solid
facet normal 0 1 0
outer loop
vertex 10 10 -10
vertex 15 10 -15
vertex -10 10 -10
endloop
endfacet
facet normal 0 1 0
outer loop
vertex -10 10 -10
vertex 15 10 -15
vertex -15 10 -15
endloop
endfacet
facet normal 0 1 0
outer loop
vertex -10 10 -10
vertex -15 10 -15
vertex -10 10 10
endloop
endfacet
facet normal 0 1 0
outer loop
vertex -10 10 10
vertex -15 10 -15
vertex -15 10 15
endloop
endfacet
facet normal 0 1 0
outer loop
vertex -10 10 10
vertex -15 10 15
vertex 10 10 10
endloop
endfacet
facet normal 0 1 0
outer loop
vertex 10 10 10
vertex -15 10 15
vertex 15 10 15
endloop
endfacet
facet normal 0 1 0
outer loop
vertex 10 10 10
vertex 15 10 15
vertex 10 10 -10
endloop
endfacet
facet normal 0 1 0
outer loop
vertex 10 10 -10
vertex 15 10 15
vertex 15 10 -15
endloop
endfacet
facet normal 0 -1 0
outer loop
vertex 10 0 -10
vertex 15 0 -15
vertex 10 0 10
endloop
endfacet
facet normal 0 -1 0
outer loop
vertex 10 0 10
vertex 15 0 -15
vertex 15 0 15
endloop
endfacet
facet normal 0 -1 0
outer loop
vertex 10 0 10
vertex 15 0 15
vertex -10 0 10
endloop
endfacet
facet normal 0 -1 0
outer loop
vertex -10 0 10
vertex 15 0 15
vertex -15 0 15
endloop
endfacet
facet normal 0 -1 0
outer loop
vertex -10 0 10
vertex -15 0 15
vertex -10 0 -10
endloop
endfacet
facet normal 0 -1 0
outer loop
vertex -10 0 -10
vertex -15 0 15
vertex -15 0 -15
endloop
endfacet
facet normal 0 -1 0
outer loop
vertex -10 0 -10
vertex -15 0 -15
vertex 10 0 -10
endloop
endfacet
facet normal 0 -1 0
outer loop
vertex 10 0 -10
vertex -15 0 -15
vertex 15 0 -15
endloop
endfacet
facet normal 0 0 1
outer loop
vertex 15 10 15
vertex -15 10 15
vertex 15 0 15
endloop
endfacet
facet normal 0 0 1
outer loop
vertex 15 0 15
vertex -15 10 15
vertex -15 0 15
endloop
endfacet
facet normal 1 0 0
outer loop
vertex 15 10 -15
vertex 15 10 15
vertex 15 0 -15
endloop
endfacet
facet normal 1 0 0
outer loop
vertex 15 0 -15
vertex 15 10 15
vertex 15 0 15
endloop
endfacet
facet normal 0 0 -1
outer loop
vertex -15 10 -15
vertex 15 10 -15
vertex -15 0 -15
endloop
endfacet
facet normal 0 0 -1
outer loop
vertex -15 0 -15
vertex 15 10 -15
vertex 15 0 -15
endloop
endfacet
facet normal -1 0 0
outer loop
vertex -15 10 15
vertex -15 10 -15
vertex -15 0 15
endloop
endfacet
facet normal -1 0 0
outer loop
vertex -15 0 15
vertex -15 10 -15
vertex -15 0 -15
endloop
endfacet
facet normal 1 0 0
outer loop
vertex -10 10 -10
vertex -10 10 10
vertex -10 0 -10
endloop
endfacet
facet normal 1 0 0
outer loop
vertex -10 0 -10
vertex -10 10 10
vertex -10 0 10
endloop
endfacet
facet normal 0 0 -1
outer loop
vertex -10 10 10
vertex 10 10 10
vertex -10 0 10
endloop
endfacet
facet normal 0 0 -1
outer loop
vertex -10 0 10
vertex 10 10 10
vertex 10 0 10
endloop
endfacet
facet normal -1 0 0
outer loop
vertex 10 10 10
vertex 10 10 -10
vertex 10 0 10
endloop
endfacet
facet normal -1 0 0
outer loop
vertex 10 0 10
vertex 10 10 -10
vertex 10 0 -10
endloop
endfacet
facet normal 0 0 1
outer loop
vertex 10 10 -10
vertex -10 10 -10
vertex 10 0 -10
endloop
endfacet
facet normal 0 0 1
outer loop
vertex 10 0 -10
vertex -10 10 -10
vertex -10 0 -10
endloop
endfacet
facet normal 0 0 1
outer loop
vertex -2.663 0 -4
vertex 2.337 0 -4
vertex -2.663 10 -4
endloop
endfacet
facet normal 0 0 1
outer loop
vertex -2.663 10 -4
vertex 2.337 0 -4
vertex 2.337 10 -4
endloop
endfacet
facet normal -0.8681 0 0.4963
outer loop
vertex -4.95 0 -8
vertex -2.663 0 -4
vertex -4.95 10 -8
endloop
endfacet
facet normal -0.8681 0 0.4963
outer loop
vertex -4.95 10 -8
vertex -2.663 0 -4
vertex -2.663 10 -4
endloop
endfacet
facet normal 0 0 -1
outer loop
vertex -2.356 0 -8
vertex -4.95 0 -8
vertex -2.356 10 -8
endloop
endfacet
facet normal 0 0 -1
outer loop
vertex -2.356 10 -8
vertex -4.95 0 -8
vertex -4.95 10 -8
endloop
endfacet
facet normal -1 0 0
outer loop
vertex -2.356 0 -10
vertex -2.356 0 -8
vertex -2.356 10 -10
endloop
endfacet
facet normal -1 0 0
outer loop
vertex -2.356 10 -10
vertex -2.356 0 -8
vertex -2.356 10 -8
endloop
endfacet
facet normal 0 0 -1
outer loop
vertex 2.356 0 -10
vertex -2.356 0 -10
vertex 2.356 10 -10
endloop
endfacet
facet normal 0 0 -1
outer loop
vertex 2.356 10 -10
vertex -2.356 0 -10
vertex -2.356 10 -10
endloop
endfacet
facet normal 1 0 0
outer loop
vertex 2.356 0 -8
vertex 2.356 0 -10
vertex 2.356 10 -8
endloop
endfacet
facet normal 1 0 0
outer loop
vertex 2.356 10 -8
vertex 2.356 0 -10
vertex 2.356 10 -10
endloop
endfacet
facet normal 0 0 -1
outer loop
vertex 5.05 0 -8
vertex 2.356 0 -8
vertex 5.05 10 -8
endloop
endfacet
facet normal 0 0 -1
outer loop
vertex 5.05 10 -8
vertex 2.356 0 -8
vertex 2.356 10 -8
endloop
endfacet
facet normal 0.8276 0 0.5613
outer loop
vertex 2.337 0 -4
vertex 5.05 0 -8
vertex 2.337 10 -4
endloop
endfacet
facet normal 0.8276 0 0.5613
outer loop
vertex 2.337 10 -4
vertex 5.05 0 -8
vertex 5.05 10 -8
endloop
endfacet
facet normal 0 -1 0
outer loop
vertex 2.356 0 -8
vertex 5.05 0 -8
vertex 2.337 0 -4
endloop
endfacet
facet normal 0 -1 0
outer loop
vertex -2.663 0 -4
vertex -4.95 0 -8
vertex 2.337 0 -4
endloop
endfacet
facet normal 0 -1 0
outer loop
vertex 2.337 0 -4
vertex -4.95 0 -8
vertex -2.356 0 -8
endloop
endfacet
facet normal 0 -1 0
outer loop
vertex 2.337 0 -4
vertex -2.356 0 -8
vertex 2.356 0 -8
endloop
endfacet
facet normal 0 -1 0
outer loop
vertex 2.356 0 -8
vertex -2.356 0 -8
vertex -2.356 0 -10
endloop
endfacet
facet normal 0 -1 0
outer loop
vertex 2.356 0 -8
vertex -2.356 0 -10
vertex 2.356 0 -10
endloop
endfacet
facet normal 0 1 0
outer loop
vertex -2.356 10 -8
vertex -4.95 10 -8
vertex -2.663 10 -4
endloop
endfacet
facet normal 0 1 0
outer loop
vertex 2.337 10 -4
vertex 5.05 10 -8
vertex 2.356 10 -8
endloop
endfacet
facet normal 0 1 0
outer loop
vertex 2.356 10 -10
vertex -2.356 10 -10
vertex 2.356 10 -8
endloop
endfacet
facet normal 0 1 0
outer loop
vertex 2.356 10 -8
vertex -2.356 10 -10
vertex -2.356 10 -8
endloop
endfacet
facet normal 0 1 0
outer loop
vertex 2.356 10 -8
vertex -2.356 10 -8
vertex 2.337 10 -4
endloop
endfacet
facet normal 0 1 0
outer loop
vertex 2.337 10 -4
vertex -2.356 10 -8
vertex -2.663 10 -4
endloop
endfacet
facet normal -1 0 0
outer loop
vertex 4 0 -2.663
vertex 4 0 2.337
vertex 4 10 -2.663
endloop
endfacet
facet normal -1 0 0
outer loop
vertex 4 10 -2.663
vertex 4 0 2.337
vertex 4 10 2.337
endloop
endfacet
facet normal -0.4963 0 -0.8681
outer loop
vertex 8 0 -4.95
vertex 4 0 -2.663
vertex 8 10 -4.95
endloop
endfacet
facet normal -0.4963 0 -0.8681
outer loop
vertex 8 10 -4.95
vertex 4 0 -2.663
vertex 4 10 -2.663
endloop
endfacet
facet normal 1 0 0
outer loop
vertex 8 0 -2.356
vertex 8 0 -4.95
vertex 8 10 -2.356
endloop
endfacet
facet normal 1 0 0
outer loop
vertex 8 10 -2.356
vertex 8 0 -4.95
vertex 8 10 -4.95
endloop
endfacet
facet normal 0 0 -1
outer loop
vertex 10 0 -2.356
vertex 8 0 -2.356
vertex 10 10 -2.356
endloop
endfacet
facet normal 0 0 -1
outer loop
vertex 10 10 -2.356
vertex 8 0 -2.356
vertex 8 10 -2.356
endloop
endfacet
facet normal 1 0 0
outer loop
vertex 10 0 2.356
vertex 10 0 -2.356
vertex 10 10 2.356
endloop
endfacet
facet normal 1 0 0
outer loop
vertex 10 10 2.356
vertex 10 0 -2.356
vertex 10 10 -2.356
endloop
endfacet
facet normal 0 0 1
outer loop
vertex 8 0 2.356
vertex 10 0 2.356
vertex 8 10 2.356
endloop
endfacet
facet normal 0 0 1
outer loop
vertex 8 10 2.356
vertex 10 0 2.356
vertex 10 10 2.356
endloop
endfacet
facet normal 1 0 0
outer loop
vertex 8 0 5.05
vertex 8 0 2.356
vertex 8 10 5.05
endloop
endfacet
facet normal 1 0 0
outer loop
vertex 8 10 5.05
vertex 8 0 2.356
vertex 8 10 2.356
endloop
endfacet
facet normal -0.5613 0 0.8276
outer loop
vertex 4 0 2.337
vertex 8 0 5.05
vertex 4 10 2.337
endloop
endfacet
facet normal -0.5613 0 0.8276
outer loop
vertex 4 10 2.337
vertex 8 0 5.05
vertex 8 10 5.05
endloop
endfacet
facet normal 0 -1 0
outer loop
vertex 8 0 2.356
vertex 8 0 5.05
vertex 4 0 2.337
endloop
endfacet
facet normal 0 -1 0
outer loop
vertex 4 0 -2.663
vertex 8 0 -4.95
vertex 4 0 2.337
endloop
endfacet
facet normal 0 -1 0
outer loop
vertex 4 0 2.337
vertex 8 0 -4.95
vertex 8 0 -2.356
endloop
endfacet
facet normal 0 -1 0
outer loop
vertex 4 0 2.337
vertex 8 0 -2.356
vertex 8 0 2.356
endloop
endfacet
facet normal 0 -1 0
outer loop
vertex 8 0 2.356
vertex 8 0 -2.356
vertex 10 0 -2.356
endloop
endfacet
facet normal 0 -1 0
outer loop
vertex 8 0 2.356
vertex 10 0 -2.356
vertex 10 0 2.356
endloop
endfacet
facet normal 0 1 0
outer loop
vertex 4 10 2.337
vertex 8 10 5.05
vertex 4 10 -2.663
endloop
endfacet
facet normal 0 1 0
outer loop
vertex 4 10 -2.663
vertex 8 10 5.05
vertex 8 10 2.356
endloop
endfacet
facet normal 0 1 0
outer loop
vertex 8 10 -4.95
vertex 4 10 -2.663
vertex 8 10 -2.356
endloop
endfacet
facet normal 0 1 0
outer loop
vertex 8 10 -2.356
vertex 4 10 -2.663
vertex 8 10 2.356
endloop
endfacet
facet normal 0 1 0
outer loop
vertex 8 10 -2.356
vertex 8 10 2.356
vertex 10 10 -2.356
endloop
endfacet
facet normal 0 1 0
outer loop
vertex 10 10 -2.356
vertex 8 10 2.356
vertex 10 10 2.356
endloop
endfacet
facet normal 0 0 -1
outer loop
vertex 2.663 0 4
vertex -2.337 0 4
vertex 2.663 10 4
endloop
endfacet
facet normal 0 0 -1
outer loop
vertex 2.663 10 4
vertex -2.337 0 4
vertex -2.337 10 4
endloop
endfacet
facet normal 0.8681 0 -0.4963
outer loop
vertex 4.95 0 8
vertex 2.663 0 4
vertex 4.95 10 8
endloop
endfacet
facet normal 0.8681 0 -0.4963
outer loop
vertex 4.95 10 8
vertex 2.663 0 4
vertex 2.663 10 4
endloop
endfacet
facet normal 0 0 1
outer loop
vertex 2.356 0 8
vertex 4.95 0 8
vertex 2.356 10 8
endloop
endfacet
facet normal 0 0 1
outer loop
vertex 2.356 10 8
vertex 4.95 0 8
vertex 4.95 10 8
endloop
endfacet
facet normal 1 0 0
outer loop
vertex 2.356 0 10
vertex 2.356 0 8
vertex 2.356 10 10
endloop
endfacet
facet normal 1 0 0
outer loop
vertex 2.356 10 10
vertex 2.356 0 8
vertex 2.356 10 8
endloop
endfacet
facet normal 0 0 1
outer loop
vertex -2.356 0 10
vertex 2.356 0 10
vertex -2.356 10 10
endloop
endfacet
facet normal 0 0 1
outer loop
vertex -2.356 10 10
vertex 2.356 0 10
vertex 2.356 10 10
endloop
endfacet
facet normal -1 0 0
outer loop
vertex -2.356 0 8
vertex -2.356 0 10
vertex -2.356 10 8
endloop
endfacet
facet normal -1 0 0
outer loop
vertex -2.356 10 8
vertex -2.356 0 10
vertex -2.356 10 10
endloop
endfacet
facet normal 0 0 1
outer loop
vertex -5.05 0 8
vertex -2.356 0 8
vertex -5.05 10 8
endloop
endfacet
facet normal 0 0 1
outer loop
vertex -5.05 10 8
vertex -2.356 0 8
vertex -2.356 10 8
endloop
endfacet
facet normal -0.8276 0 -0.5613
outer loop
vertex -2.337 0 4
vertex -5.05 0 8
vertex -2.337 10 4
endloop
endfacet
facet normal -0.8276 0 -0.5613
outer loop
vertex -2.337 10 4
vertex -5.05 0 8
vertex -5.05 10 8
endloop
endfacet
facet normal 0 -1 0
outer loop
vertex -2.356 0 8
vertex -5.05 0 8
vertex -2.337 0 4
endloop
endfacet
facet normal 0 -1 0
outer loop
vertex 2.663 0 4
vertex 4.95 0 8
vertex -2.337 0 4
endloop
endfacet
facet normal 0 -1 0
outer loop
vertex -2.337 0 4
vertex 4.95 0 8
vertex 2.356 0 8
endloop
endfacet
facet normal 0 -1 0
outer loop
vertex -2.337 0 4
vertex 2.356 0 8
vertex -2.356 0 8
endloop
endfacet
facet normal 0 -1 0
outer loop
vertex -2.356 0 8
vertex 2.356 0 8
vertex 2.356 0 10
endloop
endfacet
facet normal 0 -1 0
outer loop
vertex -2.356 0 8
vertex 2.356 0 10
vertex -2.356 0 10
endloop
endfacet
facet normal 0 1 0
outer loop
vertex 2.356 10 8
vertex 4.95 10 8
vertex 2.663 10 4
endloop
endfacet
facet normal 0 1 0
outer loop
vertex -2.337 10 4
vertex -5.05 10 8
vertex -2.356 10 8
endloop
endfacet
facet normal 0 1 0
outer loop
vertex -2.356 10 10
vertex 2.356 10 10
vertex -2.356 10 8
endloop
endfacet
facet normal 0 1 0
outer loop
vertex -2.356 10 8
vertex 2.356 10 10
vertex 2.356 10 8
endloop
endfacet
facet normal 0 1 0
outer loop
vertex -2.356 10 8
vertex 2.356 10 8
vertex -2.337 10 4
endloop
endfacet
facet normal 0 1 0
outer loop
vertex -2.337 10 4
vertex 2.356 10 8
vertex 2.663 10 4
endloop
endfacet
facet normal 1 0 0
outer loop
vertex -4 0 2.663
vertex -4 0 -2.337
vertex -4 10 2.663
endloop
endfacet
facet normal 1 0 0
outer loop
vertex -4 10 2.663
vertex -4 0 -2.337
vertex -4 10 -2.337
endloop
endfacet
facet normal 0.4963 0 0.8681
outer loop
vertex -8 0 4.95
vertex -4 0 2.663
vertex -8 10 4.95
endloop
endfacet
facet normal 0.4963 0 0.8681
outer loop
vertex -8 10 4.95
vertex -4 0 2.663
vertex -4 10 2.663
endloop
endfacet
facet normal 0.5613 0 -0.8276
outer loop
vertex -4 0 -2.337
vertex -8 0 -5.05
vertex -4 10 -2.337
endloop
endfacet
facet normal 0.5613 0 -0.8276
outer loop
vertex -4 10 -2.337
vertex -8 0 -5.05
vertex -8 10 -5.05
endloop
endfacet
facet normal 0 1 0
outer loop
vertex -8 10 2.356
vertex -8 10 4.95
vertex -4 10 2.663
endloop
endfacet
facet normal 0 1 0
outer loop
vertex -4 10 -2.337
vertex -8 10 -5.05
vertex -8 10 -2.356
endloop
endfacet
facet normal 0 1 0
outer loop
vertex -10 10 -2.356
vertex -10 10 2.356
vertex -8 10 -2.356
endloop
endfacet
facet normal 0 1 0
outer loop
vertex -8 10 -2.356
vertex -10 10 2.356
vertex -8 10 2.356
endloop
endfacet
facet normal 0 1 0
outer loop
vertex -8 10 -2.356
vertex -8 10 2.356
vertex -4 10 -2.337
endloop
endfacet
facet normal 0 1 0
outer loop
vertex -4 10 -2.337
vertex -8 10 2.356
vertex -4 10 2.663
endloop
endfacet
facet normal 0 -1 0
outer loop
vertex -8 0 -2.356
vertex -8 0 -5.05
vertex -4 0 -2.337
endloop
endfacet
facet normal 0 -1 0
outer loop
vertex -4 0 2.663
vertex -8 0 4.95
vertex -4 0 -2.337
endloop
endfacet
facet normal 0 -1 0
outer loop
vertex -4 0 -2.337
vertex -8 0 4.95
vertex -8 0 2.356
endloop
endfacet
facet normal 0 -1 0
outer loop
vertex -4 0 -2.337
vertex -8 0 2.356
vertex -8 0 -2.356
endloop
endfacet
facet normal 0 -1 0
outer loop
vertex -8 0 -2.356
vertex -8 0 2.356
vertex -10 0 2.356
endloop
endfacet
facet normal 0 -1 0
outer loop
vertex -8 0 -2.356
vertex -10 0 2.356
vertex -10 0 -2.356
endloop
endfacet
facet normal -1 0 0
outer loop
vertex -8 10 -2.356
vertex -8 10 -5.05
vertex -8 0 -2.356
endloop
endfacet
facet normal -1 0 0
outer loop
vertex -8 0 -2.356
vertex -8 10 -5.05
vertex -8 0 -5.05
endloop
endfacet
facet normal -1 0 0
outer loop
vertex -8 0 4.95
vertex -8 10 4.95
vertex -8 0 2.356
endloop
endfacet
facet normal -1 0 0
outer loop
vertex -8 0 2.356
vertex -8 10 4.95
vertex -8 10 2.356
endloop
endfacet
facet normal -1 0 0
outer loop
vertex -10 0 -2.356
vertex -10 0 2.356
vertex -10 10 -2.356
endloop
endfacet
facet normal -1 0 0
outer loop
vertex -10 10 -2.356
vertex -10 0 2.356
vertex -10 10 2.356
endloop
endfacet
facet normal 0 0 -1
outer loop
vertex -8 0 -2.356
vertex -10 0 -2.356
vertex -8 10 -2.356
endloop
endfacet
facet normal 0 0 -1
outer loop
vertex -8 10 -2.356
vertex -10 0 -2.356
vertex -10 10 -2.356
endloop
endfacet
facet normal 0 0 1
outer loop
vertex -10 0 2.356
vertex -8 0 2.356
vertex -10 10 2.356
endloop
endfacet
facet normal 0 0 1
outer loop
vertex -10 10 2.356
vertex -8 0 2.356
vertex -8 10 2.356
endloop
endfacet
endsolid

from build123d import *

# Parameters (mm, degrees)
SKETCH1_W           = 30
SKETCH1_H           = 30
SKETCH1_W_2         = 20
SKETCH1_H_2         = 20
BOSS_EXTRUDE1_DEPTH = 10
SKETCH2_W           = 4.711017494
SKETCH2_H           = 2
SKETCH2_W_2         = 2
SKETCH2_H_2         = 4.711017494
BOSS_EXTRUDE2_DEPTH = 10


with BuildPart() as part:
    # Sketch1 → Boss-Extrude1 (new body)
    with BuildSketch(Plane(origin=(0, 0, 0), x_dir=(1, 0, 0), z_dir=(0, 1, 0))):
        Rectangle(SKETCH1_W, SKETCH1_H)
        Rectangle(SKETCH1_W_2, SKETCH1_H_2, mode=Mode.SUBTRACT)
    extrude(amount=BOSS_EXTRUDE1_DEPTH)


with BuildPart() as body_2:
    # Sketch2 → Boss-Extrude2 (new body)
    with BuildSketch(Plane(origin=(0, 10, 0), x_dir=(1, 0, 0), z_dir=(0, 1, 0))):
        Polygon((2.336539675, 4), (-2.663460325, 4), (-4.950152781, 8), (5.049847219, 8), align=None)
        with Locations((0, 9)):
            Rectangle(SKETCH2_W, SKETCH2_H)
        Polygon((-4, 2.336539675), (-4, -2.663460325), (-8, -4.950152781), (-8, 5.049847219), align=None)
        Polygon((-2.336539675, -4), (2.663460325, -4), (4.950152781, -8), (-5.049847219, -8), align=None)
        with Locations((0, -9)):
            Rectangle(SKETCH2_W, SKETCH2_H)
        Polygon((4, 2.663460325), (4, -2.336539675), (8, -5.049847219), (8, -2.355508747), (8, 2.355508747), (8, 4.950152781), align=None)
        with Locations((9, 0)):
            Rectangle(SKETCH2_W_2, SKETCH2_H_2)
        with Locations((-9, 0)):
            Rectangle(SKETCH2_W_2, SKETCH2_H_2)
    extrude(amount=-BOSS_EXTRUDE2_DEPTH)


solid = Compound([part.part, body_2.part])
